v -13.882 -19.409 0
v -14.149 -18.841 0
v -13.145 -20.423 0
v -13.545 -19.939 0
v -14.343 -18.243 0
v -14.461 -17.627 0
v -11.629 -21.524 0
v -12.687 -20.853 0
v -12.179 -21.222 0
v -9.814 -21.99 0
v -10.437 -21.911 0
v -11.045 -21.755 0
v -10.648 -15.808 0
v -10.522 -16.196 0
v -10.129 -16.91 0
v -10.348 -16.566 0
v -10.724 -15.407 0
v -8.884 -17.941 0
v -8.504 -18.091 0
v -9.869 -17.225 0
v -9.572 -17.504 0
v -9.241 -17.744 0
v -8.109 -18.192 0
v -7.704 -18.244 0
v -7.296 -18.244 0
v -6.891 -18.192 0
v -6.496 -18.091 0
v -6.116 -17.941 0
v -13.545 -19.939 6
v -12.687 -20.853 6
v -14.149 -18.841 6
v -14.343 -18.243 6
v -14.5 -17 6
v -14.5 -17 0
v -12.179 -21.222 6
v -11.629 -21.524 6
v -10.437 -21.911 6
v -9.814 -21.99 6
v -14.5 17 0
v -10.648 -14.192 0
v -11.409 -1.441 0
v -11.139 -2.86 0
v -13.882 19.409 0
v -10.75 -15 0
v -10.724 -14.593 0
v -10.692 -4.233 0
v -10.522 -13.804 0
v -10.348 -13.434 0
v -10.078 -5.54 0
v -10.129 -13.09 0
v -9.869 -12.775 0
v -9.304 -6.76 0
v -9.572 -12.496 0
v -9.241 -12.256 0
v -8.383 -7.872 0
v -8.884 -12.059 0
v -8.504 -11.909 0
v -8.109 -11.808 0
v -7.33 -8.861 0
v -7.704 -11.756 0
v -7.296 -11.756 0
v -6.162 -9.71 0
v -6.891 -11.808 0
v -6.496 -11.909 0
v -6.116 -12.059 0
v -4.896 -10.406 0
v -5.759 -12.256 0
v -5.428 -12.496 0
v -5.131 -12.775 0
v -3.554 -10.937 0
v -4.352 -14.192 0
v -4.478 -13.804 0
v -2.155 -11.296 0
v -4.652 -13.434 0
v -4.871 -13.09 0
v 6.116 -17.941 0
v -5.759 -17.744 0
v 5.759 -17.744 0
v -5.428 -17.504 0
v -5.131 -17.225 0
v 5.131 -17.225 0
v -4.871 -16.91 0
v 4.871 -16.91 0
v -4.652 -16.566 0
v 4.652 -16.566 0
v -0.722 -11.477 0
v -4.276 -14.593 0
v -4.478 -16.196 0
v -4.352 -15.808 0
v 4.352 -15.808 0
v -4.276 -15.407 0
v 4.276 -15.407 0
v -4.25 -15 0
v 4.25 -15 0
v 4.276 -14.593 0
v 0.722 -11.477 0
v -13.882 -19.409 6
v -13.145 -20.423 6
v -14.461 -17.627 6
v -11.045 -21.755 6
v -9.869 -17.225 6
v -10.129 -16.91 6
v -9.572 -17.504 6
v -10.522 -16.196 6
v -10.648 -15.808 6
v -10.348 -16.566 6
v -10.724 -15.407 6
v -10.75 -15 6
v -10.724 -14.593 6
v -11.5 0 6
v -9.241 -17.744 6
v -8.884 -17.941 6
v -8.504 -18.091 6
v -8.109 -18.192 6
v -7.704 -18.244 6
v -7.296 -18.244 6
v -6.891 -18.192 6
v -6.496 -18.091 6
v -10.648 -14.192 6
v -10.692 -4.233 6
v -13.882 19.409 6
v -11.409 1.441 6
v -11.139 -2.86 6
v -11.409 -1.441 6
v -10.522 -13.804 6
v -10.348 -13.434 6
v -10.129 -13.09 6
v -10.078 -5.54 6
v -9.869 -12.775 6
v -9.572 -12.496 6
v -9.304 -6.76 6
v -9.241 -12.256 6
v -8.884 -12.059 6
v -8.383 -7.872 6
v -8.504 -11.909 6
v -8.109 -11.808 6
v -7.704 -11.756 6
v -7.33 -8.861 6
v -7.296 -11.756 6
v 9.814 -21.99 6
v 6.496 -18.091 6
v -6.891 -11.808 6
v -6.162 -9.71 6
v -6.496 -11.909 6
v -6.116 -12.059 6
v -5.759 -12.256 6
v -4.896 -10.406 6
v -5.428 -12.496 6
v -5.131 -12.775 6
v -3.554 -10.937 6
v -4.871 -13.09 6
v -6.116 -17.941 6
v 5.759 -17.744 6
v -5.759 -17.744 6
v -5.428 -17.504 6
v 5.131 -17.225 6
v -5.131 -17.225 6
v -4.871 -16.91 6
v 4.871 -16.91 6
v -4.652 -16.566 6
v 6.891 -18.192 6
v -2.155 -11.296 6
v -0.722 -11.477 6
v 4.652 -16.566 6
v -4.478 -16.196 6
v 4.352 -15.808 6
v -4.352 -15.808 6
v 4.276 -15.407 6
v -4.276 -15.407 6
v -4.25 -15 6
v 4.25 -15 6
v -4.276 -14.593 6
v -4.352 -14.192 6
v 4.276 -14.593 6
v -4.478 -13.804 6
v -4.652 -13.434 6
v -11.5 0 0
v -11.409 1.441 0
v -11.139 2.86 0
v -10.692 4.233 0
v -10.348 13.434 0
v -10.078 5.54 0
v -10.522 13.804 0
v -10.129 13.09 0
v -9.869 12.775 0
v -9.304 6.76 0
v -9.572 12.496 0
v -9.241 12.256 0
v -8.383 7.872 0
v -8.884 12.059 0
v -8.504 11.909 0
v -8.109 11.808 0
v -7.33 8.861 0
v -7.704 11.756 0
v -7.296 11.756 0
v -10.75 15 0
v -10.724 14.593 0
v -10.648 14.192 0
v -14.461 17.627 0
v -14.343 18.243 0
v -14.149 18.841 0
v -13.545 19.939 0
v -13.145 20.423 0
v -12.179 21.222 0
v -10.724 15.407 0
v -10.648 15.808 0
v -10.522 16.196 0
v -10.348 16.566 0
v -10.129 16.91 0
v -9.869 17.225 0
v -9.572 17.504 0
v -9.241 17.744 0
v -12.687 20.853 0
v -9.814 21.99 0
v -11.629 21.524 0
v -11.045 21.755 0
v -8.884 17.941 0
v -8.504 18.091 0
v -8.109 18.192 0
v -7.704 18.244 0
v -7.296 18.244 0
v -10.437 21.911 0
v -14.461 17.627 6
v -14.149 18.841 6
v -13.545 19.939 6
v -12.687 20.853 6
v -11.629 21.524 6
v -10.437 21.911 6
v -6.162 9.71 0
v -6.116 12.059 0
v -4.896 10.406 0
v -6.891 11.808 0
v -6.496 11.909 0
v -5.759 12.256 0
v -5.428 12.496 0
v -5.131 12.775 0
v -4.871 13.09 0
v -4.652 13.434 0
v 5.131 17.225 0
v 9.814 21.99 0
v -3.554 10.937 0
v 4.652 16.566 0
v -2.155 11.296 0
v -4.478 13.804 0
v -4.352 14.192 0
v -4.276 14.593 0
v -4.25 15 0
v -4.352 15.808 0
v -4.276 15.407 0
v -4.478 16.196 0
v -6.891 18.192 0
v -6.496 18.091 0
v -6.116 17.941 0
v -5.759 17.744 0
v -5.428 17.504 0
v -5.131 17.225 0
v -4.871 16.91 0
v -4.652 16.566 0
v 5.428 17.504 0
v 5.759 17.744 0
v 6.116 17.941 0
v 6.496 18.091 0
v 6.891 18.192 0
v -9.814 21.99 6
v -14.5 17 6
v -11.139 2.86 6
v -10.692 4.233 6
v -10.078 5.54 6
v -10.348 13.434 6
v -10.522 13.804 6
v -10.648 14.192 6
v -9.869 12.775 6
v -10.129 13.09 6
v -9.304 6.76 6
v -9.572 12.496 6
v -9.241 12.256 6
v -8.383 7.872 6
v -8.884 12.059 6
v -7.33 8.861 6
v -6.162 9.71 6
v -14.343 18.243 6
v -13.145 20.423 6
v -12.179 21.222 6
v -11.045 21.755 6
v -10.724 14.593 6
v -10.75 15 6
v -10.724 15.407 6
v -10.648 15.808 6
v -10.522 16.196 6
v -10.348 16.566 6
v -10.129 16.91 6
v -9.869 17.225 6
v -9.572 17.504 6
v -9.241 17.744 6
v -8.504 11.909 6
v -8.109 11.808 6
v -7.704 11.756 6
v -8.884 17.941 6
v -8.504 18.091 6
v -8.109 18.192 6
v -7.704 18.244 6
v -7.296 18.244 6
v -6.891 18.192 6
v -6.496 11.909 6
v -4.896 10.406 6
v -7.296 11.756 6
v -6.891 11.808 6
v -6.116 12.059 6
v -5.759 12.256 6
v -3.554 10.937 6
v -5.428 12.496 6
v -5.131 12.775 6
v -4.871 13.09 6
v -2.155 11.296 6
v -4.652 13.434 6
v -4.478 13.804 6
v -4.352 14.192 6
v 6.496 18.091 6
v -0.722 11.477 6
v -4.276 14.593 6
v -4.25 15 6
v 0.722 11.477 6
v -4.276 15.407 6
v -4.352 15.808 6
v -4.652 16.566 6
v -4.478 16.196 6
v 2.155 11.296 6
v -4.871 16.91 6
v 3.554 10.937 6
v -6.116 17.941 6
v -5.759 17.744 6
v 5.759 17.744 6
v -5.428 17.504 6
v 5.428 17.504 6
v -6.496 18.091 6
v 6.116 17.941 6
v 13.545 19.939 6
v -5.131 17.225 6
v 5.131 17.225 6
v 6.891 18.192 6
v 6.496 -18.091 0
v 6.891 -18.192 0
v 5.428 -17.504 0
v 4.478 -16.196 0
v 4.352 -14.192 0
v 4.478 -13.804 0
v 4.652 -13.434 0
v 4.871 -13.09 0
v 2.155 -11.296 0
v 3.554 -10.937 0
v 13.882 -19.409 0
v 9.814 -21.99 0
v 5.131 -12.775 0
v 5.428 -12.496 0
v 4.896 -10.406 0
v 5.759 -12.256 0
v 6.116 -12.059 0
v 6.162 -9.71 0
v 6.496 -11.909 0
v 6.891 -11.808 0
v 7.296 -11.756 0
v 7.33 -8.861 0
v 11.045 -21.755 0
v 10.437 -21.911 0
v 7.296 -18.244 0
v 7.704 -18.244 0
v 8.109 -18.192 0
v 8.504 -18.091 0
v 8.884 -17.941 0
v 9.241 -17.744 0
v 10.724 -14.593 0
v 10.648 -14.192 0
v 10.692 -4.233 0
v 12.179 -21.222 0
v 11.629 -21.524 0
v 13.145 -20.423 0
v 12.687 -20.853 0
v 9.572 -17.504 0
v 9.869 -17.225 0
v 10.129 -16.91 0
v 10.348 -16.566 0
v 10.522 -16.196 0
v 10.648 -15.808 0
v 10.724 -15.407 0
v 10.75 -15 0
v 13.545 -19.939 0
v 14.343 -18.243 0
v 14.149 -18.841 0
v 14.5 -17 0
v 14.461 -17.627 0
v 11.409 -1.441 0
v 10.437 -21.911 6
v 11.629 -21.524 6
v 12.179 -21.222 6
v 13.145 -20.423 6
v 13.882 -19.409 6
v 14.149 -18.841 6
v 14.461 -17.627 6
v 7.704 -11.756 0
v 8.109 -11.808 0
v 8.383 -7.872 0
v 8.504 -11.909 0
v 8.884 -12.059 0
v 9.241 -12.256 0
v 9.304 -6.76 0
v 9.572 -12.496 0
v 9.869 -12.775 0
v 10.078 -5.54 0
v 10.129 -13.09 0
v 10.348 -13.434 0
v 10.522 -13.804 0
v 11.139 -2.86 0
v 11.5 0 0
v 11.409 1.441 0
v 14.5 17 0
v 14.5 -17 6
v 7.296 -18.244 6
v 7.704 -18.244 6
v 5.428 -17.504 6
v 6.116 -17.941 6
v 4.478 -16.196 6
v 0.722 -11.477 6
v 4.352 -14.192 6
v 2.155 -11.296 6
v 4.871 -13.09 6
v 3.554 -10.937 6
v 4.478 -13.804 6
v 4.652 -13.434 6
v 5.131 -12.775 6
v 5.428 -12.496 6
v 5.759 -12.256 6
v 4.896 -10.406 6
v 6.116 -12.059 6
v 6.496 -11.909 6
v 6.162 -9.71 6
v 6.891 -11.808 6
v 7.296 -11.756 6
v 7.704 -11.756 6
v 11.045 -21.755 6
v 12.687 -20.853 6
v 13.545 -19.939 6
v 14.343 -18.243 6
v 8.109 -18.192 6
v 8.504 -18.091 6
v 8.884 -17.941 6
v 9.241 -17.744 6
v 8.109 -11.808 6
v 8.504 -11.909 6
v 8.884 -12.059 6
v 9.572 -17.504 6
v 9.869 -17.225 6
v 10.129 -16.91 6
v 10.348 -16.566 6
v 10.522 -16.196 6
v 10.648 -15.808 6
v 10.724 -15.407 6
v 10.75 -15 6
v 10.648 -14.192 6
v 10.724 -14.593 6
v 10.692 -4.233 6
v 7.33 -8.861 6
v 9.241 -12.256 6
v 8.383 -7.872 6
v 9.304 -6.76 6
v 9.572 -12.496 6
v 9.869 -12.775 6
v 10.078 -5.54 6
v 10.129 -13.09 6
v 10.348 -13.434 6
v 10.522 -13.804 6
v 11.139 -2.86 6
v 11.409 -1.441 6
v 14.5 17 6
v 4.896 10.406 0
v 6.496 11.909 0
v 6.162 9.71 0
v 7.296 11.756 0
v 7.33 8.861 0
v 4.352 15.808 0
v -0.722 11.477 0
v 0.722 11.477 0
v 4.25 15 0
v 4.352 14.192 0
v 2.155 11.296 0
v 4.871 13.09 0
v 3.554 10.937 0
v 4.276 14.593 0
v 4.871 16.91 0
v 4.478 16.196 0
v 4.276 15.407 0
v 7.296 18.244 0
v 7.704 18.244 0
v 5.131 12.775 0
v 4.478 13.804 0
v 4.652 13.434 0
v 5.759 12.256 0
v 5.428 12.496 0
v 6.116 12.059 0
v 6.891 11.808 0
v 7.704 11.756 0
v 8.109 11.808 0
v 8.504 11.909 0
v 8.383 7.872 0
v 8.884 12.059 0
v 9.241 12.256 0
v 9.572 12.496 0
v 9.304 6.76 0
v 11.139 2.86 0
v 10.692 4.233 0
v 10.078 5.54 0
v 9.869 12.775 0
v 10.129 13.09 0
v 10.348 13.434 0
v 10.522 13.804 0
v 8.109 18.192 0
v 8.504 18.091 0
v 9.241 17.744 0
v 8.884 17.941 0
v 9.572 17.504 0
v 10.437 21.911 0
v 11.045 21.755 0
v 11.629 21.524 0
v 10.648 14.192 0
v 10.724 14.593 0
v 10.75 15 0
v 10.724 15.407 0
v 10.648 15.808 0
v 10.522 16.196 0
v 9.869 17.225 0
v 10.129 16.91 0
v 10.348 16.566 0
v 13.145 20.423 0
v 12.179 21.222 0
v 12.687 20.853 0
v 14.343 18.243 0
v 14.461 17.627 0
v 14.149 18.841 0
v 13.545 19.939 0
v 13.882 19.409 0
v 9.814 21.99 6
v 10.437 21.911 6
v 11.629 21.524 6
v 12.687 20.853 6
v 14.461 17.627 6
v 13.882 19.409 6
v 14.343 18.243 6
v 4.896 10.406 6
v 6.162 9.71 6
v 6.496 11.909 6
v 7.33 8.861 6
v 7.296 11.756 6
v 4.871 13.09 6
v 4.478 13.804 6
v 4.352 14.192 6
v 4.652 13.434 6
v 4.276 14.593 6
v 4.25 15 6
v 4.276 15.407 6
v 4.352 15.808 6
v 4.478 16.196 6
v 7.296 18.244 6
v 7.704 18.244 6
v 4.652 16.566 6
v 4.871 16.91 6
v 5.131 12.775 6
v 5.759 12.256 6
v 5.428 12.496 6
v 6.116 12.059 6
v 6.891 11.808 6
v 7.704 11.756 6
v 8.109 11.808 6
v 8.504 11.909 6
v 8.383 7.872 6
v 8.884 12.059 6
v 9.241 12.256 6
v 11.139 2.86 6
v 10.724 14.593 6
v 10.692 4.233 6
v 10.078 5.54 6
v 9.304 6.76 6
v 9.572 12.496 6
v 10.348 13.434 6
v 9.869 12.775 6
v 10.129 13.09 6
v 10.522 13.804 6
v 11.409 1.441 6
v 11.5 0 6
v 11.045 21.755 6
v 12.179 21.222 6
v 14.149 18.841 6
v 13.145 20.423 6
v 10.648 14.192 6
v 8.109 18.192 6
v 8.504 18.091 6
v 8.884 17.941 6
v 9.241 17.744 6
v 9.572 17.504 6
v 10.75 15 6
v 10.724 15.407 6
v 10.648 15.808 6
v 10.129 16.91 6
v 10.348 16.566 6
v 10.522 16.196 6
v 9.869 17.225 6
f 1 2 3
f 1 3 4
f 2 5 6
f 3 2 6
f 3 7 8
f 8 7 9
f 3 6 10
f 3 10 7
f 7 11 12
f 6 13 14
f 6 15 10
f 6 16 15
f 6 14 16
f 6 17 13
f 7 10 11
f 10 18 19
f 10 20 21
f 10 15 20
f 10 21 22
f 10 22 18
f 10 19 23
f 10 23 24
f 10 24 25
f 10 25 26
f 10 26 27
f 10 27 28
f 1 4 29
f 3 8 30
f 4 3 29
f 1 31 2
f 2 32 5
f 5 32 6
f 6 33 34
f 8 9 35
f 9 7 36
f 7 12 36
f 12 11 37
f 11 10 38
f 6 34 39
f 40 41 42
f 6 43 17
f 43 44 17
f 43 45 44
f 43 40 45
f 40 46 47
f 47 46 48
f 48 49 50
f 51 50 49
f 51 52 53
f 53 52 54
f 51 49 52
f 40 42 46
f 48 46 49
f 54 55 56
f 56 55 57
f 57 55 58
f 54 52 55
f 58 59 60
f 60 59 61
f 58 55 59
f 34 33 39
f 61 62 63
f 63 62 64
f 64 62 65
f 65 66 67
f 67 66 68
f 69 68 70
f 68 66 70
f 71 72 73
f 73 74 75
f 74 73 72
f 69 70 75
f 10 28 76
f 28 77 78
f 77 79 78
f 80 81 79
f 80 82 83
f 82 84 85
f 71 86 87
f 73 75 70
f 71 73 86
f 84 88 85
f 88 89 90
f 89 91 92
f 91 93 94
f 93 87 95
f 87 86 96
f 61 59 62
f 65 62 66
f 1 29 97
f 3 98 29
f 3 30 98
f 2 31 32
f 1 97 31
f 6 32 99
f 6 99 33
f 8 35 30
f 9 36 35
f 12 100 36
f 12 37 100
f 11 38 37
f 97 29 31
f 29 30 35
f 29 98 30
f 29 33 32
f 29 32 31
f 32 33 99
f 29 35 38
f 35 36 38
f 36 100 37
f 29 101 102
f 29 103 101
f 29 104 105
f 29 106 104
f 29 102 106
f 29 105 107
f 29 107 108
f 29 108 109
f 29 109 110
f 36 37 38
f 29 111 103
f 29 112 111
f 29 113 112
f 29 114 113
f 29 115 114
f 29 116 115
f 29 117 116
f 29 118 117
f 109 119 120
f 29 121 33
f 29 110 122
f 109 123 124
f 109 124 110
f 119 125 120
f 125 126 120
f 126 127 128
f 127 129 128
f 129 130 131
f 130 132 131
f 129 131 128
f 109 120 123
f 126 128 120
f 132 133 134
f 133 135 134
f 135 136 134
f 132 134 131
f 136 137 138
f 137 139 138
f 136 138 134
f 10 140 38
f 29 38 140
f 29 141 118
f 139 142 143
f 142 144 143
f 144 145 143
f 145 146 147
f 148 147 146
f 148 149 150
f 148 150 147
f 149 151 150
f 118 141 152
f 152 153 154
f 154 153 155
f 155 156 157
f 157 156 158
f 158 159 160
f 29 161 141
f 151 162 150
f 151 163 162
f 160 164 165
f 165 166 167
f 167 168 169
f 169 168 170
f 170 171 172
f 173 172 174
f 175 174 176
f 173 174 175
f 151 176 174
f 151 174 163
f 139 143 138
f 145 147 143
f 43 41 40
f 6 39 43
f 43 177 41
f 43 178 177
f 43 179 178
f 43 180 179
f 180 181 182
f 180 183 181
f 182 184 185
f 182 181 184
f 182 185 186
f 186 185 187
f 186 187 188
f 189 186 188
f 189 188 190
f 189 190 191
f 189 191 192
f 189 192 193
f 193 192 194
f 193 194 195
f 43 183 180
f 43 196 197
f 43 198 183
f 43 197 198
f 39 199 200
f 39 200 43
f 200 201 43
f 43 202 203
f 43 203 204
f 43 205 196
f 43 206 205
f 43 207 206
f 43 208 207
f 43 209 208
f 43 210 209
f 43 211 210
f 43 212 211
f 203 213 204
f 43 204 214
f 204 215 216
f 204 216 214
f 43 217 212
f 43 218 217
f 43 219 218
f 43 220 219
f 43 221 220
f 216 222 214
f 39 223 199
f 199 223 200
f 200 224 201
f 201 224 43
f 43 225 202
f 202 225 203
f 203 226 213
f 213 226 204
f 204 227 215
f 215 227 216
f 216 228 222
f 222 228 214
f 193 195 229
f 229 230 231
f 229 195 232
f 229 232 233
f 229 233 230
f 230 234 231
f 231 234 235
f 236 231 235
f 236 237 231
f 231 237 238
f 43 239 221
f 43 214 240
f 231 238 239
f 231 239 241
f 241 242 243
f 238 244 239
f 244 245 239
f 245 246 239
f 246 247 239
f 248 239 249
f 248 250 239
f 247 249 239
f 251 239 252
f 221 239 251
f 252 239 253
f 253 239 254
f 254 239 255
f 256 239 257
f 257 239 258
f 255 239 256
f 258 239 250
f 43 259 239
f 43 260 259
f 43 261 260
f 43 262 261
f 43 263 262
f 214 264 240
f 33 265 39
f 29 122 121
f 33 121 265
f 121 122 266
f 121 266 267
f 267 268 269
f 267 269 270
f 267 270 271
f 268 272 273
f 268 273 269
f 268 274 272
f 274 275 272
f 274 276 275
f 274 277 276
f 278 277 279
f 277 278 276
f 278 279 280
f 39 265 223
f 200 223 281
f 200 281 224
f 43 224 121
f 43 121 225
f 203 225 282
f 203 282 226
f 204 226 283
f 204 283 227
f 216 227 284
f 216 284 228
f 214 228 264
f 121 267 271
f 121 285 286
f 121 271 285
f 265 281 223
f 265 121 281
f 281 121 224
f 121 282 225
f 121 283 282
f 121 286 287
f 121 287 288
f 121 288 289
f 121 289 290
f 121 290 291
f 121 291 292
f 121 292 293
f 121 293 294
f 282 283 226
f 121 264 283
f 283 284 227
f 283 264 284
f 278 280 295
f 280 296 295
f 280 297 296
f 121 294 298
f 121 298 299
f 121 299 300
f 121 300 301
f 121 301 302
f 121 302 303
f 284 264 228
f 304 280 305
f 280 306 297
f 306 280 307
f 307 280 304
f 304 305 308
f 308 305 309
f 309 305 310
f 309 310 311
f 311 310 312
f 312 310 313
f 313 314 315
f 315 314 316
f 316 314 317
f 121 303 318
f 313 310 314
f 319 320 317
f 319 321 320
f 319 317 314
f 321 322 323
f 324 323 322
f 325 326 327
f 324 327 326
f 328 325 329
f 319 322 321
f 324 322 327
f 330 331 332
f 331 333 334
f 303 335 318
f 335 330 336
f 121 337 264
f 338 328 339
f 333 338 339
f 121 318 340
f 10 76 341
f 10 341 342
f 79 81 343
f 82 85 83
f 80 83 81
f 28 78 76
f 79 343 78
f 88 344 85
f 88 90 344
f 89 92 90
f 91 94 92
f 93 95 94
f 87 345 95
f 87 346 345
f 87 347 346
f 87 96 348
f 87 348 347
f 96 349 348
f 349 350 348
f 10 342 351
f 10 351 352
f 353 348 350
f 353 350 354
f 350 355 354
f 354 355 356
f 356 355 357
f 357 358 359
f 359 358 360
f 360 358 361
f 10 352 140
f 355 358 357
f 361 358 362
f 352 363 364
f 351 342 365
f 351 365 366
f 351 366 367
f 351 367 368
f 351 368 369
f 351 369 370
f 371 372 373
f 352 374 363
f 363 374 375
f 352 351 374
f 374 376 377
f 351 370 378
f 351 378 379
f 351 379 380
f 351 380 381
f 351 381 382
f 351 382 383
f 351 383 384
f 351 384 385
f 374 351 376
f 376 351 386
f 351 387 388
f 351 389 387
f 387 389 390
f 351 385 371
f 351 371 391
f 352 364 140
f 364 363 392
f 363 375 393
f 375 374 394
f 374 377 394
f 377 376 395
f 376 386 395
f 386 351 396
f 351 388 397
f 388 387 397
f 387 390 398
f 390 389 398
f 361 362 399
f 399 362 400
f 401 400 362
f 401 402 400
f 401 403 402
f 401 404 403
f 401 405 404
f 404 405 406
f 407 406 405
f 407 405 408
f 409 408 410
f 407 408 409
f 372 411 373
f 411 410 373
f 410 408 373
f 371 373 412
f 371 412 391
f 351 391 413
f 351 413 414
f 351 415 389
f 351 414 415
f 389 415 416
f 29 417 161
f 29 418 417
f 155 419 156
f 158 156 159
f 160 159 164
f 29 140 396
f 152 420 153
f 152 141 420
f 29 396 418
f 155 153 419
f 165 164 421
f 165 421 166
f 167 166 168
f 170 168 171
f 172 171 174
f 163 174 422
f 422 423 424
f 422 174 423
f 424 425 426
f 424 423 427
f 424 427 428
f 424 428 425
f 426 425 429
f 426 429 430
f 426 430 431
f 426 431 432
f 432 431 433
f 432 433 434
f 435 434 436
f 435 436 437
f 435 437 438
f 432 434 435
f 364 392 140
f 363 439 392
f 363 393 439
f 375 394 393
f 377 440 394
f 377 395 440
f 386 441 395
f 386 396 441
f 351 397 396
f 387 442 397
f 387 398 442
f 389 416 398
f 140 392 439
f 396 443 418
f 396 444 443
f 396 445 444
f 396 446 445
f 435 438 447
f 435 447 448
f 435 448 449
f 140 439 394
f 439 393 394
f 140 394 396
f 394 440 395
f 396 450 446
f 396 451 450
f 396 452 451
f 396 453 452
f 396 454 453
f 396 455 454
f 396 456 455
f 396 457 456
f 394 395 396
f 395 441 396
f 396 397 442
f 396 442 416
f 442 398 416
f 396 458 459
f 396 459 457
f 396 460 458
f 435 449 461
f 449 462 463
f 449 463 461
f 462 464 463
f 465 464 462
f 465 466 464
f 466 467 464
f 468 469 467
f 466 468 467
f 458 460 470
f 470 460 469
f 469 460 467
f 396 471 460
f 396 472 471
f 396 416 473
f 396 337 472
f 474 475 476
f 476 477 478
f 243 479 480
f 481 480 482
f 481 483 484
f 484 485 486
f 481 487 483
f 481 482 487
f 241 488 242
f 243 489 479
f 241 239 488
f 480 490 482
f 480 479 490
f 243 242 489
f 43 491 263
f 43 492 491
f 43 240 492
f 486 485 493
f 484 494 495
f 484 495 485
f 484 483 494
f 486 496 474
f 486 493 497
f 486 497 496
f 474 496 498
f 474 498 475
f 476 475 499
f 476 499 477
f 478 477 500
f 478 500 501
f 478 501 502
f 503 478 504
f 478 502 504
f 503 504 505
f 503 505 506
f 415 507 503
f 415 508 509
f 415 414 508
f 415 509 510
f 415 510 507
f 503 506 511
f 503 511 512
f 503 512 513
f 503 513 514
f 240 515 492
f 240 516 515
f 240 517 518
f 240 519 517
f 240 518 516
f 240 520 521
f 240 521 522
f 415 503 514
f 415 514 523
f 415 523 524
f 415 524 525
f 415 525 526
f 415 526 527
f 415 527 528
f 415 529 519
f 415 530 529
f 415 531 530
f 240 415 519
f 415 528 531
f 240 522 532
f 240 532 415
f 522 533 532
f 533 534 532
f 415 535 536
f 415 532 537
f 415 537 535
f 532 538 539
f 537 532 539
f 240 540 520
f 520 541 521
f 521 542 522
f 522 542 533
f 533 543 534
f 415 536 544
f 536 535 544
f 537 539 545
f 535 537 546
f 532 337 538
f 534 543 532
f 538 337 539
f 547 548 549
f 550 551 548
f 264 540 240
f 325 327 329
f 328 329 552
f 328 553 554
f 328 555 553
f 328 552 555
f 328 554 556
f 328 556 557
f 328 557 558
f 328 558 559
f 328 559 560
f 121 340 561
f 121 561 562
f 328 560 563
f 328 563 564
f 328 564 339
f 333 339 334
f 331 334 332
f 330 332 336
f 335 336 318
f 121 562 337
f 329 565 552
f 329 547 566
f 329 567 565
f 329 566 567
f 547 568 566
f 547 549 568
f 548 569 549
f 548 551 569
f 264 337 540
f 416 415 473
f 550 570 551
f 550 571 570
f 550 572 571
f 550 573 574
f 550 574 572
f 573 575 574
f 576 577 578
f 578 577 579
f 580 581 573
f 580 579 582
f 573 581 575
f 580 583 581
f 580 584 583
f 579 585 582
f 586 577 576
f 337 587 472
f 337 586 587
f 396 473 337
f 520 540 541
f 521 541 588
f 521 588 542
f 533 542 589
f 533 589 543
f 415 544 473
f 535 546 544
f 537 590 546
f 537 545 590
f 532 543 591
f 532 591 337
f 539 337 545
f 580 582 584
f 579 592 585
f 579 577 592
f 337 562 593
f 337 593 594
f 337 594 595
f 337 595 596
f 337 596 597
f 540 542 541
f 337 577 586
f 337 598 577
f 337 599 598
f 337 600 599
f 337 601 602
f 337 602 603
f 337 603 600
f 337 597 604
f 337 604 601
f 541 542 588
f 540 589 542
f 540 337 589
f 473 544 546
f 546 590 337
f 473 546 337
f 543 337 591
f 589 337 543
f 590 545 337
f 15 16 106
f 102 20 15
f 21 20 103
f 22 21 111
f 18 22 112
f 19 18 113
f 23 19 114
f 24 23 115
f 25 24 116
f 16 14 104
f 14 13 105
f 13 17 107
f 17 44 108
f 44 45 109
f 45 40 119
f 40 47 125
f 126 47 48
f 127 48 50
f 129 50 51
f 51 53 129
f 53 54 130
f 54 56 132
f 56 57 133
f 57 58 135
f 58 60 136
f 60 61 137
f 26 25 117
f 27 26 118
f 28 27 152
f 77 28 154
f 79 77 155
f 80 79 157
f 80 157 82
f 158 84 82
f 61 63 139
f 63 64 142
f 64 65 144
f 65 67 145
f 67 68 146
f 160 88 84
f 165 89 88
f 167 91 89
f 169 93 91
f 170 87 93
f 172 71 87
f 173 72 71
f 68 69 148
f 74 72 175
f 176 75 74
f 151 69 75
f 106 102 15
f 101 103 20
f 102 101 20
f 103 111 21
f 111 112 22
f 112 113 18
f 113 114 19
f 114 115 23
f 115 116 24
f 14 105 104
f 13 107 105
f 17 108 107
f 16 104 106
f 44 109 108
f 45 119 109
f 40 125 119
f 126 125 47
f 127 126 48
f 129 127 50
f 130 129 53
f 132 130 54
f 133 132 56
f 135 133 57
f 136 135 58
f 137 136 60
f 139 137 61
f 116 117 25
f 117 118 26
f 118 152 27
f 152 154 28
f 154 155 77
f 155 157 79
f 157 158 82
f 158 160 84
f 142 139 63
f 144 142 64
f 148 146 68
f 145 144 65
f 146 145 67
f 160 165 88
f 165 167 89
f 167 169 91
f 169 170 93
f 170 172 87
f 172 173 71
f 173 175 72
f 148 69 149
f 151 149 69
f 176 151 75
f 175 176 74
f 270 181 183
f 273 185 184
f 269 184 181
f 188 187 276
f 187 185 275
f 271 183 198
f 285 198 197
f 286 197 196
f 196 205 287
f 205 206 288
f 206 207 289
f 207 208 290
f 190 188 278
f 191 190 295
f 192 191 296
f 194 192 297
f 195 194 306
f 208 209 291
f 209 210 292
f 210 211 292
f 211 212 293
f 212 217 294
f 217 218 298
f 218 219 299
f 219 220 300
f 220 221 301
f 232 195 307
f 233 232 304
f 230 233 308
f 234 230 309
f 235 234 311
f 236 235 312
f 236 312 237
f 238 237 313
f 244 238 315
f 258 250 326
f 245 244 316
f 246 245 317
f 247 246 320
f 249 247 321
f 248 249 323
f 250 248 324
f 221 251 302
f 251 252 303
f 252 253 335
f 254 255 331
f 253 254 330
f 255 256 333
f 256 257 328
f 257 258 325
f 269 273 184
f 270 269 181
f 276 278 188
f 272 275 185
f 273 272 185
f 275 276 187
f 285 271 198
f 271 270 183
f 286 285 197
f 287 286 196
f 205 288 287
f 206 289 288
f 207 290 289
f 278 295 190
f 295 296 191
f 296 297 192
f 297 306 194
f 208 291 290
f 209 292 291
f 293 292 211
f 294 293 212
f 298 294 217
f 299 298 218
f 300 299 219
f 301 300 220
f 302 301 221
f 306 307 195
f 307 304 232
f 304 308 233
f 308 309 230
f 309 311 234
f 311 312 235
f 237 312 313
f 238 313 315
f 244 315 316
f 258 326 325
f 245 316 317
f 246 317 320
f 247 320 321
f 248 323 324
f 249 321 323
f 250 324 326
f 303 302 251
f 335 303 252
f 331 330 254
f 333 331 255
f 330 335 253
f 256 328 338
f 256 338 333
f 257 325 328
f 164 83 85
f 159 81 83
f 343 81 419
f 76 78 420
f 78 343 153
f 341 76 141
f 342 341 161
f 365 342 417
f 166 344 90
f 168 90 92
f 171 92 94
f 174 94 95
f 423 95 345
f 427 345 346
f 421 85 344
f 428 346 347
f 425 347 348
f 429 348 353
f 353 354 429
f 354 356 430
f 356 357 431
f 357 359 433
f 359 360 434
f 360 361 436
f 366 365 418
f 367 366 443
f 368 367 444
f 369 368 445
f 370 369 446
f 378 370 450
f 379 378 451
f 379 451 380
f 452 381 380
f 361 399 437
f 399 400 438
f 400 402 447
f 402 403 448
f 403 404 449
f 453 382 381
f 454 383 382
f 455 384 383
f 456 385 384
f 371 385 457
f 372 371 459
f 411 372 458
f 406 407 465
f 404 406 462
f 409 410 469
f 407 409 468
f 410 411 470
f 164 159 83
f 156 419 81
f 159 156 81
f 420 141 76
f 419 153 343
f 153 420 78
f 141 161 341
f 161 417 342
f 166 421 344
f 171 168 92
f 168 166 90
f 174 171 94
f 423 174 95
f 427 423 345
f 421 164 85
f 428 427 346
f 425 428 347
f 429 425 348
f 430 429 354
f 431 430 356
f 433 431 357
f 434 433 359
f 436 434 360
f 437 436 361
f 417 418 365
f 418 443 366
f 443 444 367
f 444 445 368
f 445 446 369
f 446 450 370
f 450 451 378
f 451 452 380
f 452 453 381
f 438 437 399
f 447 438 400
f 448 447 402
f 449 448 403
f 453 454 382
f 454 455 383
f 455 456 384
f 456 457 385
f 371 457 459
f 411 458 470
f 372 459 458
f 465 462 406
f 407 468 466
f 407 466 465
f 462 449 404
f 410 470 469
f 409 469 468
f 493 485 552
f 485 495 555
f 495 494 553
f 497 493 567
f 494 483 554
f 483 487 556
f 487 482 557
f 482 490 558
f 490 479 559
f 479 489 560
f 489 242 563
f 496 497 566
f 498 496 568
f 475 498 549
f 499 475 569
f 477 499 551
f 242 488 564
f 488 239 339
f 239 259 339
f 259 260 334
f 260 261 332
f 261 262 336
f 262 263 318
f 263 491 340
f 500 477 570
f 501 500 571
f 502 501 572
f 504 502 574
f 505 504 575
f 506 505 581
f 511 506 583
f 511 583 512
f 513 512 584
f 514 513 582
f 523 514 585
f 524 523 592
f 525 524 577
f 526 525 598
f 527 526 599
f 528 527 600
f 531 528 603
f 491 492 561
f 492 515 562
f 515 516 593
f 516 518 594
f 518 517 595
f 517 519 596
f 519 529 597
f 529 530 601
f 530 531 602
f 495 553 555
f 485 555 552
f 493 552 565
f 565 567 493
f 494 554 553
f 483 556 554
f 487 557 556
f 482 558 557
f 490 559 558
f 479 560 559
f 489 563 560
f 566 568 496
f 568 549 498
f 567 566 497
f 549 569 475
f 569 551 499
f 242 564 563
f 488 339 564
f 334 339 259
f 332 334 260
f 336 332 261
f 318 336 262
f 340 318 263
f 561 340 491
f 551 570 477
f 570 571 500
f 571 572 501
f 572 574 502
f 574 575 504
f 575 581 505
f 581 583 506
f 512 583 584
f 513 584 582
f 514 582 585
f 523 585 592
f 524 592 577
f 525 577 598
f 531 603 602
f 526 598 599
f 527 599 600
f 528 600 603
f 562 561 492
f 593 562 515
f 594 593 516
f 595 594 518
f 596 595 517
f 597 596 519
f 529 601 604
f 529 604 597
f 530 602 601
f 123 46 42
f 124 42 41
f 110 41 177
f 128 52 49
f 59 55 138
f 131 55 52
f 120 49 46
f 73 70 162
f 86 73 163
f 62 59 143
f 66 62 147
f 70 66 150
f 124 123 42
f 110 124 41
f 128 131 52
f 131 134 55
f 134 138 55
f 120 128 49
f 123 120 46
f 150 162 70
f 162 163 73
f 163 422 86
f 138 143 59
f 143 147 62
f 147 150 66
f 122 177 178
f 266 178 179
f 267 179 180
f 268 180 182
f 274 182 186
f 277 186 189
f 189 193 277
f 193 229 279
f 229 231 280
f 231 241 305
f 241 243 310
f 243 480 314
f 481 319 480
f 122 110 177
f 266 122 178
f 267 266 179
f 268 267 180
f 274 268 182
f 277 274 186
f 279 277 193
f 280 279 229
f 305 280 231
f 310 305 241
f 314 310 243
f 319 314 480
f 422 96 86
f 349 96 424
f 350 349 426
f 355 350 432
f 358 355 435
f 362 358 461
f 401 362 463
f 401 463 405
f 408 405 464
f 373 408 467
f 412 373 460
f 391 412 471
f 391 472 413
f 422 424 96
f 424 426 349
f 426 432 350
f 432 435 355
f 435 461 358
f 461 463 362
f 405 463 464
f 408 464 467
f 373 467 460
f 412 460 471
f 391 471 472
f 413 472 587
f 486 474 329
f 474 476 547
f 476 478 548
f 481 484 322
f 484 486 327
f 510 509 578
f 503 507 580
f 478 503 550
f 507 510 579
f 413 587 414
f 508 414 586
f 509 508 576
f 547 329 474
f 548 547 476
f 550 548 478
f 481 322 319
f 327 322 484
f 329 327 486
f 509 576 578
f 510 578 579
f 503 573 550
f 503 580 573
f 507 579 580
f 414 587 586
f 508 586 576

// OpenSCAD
$fn = 50;

difference() {
	union() {
		hull() {
			translate(v = [-9.5, 17.0, 0]) {
				cylinder(h = 6, r = 5);
			}
			translate(v = [9.5, 17.0, 0]) {
				cylinder(h = 6, r = 5);
			}
			translate(v = [-9.5, -17.0, 0]) {
				cylinder(h = 6, r = 5);
			}
			translate(v = [9.5, -17.0, 0]) {
				cylinder(h = 6, r = 5);
			}
		}
	}
	union() {
		translate(v = [-7.5, -15.0, 0]) {
			cylinder(h = 6, r = 3.25);
		}
		translate(v = [-7.5, 15.0, 0]) {
			cylinder(h = 6, r = 3.25);
		}
		translate(v = [7.5, -15.0, 0]) {
			cylinder(h = 6, r = 3.25);
		}
		translate(v = [7.5, 15.0, 0]) {
			cylinder(h = 6, r = 3.25);
		}
		cylinder(h = 6, r = 11.5);
	}
}
